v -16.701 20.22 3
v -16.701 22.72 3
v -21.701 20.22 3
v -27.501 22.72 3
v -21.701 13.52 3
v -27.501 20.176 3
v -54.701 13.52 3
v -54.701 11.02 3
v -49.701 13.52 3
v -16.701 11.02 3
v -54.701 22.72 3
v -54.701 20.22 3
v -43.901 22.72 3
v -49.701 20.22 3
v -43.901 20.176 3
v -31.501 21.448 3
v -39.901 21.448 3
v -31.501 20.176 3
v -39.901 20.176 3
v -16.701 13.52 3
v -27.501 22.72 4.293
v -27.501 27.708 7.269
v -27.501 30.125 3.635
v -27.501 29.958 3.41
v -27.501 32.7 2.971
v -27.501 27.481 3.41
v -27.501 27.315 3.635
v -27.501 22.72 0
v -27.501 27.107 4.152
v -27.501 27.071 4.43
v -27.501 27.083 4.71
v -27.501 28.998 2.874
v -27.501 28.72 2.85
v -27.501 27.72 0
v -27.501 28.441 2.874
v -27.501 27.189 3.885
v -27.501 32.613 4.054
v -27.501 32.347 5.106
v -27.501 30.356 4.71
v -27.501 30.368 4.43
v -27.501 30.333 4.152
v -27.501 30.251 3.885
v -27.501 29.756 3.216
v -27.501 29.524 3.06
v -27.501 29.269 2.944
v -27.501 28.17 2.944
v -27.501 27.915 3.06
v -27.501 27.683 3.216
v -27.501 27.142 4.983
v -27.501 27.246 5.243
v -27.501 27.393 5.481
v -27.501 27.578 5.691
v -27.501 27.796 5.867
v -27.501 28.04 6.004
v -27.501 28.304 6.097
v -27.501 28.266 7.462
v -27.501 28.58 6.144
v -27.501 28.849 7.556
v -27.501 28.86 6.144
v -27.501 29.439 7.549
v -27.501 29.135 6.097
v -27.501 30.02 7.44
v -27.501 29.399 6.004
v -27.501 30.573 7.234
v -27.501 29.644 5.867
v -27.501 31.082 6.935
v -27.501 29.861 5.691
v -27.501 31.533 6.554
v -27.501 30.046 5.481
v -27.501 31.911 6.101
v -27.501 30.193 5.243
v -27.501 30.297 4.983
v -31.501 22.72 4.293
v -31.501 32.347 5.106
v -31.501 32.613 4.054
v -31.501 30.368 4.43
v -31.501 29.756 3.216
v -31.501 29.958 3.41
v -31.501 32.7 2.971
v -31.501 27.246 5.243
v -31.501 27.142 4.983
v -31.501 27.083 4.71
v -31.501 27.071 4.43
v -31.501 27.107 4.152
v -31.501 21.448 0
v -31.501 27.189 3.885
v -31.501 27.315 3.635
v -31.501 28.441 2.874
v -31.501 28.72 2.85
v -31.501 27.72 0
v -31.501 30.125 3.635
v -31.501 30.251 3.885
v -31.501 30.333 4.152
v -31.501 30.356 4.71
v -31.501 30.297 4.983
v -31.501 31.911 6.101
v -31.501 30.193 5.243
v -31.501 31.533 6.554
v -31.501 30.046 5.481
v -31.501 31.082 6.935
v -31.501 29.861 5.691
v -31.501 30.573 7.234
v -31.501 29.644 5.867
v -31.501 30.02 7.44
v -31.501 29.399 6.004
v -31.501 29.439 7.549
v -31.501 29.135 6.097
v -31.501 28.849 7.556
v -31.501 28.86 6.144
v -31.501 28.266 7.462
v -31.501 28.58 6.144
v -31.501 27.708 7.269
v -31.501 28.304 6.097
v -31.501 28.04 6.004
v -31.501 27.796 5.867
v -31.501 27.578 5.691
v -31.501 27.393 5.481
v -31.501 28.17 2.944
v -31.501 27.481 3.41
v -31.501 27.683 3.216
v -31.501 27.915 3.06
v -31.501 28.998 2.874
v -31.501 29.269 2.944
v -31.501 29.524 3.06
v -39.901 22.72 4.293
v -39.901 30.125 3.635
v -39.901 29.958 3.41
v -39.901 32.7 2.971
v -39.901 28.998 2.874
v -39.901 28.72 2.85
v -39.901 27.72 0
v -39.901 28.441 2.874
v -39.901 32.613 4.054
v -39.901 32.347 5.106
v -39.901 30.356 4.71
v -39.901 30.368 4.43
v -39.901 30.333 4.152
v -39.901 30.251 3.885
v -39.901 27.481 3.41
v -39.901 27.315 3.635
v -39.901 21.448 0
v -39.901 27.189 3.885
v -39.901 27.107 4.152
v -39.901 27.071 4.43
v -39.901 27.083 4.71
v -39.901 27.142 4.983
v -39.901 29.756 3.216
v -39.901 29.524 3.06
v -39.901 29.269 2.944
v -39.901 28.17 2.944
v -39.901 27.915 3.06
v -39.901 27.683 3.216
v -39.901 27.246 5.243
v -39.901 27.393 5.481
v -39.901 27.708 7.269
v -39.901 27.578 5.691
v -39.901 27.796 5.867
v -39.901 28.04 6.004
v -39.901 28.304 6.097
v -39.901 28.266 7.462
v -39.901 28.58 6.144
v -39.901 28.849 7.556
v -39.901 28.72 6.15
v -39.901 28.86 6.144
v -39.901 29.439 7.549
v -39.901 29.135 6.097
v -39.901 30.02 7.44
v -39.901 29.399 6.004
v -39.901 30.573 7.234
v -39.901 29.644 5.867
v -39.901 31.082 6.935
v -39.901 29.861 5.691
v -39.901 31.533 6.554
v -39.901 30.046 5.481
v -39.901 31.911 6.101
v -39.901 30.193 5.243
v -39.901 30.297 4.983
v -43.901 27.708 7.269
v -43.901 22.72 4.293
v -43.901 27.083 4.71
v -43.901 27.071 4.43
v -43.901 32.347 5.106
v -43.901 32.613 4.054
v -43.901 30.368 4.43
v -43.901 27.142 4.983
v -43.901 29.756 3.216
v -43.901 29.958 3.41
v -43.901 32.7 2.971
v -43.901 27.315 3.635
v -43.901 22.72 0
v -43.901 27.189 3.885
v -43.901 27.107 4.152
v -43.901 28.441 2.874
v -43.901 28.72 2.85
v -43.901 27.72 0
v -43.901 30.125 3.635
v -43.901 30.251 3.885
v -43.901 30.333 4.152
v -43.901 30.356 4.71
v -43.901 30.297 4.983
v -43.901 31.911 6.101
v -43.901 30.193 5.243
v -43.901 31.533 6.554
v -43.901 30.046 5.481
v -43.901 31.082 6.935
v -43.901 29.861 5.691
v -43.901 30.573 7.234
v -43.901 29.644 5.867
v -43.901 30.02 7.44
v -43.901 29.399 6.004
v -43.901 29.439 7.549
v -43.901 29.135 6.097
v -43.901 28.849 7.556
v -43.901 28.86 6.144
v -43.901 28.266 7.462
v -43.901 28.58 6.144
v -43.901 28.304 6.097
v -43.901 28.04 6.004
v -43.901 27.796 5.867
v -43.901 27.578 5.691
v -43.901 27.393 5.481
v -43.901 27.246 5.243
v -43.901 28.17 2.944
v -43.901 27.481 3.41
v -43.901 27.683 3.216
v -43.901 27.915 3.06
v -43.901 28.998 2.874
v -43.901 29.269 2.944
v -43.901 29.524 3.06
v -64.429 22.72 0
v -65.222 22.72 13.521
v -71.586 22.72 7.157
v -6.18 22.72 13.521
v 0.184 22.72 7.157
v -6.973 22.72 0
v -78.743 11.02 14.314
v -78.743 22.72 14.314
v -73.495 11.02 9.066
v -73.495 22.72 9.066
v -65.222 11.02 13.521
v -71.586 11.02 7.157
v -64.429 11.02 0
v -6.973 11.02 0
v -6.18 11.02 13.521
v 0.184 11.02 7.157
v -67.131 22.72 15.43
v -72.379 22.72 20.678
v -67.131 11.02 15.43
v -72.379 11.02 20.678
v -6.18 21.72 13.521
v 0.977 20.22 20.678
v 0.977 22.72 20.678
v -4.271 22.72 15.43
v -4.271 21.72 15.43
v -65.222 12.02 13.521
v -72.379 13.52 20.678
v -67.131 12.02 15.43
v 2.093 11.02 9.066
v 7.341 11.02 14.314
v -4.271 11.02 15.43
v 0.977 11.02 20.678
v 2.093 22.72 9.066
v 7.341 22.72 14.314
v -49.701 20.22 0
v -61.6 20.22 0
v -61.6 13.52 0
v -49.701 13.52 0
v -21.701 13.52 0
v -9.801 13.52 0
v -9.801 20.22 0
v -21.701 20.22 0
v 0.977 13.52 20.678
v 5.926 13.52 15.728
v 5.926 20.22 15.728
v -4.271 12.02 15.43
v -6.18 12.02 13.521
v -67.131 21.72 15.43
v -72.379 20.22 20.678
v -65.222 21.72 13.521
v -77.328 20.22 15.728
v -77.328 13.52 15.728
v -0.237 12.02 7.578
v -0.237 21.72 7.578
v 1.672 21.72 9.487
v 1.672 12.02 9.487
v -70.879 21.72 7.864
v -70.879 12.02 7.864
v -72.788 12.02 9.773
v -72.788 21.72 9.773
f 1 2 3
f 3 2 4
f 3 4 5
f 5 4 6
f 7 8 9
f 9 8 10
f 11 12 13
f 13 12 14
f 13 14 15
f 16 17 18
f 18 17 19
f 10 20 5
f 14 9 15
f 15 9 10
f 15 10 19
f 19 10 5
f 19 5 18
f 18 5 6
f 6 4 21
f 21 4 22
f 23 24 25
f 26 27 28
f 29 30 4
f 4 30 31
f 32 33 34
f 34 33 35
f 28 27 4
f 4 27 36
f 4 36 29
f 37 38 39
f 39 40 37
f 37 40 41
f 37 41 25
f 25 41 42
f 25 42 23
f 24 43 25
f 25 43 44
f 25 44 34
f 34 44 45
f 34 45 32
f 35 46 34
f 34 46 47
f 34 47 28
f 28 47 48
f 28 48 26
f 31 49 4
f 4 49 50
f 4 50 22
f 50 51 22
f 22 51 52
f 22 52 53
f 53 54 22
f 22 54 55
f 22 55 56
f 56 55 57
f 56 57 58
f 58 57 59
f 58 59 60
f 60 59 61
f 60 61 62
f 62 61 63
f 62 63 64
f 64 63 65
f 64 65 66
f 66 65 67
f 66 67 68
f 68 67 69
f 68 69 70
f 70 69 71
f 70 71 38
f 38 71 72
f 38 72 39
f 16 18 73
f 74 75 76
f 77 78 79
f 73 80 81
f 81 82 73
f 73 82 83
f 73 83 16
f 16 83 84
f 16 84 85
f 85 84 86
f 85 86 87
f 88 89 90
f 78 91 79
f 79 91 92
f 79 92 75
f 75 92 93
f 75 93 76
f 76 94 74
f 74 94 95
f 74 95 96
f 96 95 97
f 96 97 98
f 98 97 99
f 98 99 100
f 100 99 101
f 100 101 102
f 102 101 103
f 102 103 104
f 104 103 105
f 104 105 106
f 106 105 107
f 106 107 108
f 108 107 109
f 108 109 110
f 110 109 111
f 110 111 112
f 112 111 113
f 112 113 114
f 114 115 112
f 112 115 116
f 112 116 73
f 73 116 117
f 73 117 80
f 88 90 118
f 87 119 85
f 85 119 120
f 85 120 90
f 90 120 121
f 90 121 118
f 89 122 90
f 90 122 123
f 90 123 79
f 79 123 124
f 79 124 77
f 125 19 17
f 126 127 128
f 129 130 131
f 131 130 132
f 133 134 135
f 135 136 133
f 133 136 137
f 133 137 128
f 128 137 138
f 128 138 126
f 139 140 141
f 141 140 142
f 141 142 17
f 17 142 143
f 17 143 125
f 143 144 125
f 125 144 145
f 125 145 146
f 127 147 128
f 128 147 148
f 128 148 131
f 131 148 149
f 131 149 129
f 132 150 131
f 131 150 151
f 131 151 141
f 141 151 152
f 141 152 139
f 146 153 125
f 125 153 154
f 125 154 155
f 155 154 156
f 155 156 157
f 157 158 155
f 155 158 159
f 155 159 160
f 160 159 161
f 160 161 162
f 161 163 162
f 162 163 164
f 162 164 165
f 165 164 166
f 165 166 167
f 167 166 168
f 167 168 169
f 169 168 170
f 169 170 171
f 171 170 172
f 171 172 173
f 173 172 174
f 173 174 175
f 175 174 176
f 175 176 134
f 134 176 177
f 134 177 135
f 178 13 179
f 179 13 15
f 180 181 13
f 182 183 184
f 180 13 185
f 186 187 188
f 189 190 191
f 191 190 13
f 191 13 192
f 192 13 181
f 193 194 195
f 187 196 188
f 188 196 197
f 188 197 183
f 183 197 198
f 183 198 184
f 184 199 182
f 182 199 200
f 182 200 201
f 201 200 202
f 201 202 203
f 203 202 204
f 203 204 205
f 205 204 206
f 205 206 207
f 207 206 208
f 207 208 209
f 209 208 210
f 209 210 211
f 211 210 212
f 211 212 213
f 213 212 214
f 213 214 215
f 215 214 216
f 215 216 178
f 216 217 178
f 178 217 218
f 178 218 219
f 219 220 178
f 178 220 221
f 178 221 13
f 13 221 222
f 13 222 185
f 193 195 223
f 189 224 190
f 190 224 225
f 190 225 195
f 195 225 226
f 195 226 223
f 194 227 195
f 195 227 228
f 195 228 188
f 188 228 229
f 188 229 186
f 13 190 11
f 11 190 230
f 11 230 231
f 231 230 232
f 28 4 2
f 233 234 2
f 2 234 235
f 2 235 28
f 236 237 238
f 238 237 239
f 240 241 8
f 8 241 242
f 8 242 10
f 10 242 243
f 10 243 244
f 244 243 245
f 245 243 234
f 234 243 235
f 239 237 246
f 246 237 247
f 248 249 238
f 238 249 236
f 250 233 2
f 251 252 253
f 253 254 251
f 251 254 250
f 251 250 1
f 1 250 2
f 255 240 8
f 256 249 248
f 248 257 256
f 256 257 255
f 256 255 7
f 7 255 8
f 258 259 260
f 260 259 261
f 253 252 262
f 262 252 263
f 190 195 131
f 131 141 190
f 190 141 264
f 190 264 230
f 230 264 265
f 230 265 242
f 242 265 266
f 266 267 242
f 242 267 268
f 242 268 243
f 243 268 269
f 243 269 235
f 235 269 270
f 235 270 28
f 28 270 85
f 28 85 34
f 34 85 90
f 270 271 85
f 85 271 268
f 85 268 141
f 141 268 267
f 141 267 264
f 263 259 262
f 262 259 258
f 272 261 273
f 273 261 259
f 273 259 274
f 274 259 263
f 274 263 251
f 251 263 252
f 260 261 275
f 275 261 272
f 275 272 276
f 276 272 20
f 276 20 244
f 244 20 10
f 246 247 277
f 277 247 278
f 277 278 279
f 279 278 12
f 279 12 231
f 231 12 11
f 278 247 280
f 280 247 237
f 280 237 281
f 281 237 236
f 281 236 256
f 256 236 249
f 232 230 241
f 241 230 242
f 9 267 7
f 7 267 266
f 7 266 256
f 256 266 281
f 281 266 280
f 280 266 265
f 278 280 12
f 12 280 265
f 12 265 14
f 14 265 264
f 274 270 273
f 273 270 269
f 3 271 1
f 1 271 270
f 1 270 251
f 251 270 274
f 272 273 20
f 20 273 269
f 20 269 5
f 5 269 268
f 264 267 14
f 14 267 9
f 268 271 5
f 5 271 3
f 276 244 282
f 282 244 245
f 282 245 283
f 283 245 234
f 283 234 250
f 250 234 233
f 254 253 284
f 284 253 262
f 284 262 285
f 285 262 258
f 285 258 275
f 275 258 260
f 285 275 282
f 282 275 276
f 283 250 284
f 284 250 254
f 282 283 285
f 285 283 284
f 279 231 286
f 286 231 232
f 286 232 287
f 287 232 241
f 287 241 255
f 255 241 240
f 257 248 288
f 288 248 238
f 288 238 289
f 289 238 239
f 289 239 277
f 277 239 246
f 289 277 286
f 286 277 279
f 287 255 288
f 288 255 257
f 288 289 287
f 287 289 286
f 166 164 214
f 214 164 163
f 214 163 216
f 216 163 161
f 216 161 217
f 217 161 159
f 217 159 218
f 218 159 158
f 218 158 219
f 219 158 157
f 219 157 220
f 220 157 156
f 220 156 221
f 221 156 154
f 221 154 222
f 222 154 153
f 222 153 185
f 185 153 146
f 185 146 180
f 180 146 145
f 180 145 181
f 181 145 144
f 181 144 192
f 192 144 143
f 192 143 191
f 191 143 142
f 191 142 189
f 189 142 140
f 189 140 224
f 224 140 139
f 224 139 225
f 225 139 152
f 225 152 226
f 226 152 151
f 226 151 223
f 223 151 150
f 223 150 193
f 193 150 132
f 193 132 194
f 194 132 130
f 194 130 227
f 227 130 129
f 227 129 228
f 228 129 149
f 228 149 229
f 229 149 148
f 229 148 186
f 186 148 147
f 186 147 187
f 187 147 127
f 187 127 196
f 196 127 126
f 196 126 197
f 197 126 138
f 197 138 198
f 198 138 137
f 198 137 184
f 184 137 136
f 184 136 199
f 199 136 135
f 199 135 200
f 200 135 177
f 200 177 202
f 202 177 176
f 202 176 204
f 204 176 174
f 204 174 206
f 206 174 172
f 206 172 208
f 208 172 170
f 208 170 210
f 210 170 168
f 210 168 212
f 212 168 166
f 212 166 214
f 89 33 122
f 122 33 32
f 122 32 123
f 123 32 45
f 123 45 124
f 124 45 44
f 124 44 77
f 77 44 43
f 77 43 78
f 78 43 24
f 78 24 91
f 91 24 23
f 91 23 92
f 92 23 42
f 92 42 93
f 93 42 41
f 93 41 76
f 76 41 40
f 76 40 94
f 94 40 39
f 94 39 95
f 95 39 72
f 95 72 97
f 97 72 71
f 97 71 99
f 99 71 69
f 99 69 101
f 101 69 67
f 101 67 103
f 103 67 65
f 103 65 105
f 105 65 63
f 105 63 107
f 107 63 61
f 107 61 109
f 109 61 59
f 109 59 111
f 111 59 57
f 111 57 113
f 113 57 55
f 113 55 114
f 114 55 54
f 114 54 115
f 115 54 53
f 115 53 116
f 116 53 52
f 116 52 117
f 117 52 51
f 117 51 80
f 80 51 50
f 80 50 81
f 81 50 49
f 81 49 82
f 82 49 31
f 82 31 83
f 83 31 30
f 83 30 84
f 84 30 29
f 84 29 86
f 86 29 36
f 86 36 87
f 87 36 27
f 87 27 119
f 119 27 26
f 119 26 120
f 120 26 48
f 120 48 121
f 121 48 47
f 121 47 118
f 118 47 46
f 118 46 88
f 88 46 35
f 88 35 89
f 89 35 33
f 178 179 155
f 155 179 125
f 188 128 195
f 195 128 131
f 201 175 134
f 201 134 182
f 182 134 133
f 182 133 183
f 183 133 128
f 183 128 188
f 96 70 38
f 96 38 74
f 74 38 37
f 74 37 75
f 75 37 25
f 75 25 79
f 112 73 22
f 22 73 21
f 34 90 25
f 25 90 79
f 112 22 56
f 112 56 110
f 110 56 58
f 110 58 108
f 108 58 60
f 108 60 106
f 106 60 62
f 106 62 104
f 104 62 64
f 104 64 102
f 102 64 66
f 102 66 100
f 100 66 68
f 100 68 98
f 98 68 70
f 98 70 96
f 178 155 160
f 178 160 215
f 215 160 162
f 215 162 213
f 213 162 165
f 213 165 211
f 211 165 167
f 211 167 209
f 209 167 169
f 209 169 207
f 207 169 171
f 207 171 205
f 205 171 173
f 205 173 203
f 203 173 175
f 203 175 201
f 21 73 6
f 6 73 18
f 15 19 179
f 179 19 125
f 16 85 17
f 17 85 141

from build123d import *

# Parameters (mm, degrees)
CROQUIS1_W              = 88
CROQUIS1_H              = 11.7
SALIENTE_EXTRUIR1_DEPTH = 25
CORTAR_EXTRUIR1_DEPTH   = 11.7
CROQUIS4_W              = 7
CROQUIS4_H              = 6.7
CORTAR_EXTRUIR2_DEPTH   = 30
CROQUIS5_W              = 7
CROQUIS5_H              = 6.7
CORTAR_EXTRUIR3_DEPTH   = 30
CROQUIS6_W              = 5
CROQUIS6_H              = 6.7
CORTAR_EXTRUIR4_DEPTH   = 3
CROQUIS7_W              = 2.7
CROQUIS7_H              = 1
CORTAR_EXTRUIR5_DEPTH   = 30
CORTAR_EXTRUIR6_DEPTH   = 30
CROQUIS10_W             = 2.7
CROQUIS10_H             = 1
CORTAR_EXTRUIR7_DEPTH   = 30
CORTAR_EXTRUIR8_DEPTH   = 30
CROQUIS12_W             = 4
CROQUIS12_H             = 8.5
SALIENTE_EXTRUIR2_DEPTH = 10
CORTAR_EXTRUIR9_START   = -16.4
CROQUIS13_R             = 1.65
CORTAR_EXTRUIR9_DEPTH   = 16.4
CORTAR_EXTRUIR10_DEPTH  = 20
CROQUIS15_W             = 4
CROQUIS15_H             = 5.789985178
SALIENTE_EXTRUIR3_DEPTH = 1.292749
CORTAR_EXTRUIR11_START  = -16.4
CORTAR_EXTRUIR11_DEPTH  = 16.4
CROQUIS17_W             = 8.4
CROQUIS17_H             = 1.271995795
CORTAR_EXTRUIR12_DEPTH  = 20


with BuildPart() as part:
    # Croquis1 → Saliente-Extruir1 (new body)
    with BuildSketch(Plane.XY):
        with Locations((-35.700934579, 16.869626168)):
            Rectangle(CROQUIS1_W, CROQUIS1_H)
    extrude(amount=SALIENTE_EXTRUIR1_DEPTH)

    # Croquis3 → Cortar-Extruir1 (cut)
    with BuildSketch(Plane.XZ.offset(-11.019626168)):
        Polygon((-16.700934579, 3), (0.97673495, 20.67766953), (7.340695981, 14.313708499), (-6.973012518, 0), (8.299065421, 0), (8.299065421, 25), (-79.700934579, 25), (-79.700934579, 0), (-64.428856641, 0), (-78.74256514, 14.313708499), (-72.378604109, 20.67766953), (-54.700934579, 3), align=None)
    extrude(amount=-CORTAR_EXTRUIR1_DEPTH, mode=Mode.SUBTRACT)

    # Croquis4 → Cortar-Extruir2 (cut)
    with BuildSketch(Plane(origin=(-46.528136819, 0, 46.528136819), x_dir=(0.707106781186546, 0, 0.707106781186549), z_dir=(-0.707106781186549, 0, 0.707106781186546))):
        with Locations((-40.058081435, 16.869626168)):
            Rectangle(CROQUIS4_W, CROQUIS4_H)
    extrude(amount=-CORTAR_EXTRUIR2_DEPTH, mode=Mode.SUBTRACT)

    # Croquis5 → Cortar-Extruir3 (cut)
    with BuildSketch(Plane(origin=(10.82720224, 0, 10.82720224), x_dir=(0.7071067811865477, 0, -0.7071067811865475), z_dir=(0.7071067811865475, 0, 0.7071067811865477))):
        with Locations((-10.430664437, 16.869626168)):
            Rectangle(CROQUIS5_W, CROQUIS5_H)
    extrude(amount=-CORTAR_EXTRUIR3_DEPTH, mode=Mode.SUBTRACT)

    # Croquis6 → Cortar-Extruir4 (cut)
    with BuildSketch(Plane.XY.offset(3)):
        with Locations((-52.200934579, 16.869626168)):
            Rectangle(CROQUIS6_W, CROQUIS6_H)
        with Locations((-19.200934579, 16.869626168)):
            Rectangle(CROQUIS6_W, CROQUIS6_H)
    extrude(amount=-CORTAR_EXTRUIR4_DEPTH, mode=Mode.SUBTRACT)

    # Croquis7 → Cortar-Extruir5 (cut)
    with BuildSketch(Plane(origin=(-3.486506259, 0, 3.486506259), x_dir=(-0.7071067811865472, 0, -0.7071067811865479), z_dir=(0.7071067811865479, 0, -0.7071067811865472))):
        with Locations((-6.540655907, 11.519626168)):
            Rectangle(CROQUIS7_W, CROQUIS7_H)
        with Locations((-6.540655907, 22.219626168)):
            Rectangle(CROQUIS7_W, CROQUIS7_H)
    extrude(amount=-CORTAR_EXTRUIR5_DEPTH, mode=Mode.SUBTRACT)

    # Croquis9 → Cortar-Extruir6 (cut)
    with BuildSketch(Plane.XZ.offset(-12.019626168)):
        Polygon((0.183841731, 7.156854249), (2.093030041, 9.066042559), (1.672230345, 9.486842254), (-0.236957964, 7.577653945), align=None)
    extrude(amount=-CORTAR_EXTRUIR6_DEPTH, mode=Mode.SUBTRACT)

    # Croquis10 → Cortar-Extruir7 (cut)
    with BuildSketch(Plane(origin=(-32.21442832, 0, -32.21442832), x_dir=(-0.707106781186549, 0, 0.707106781186546), z_dir=(-0.707106781186546, 0, -0.707106781186549))):
        with Locations((57.029401778, 22.219626168)):
            Rectangle(CROQUIS10_W, CROQUIS10_H)
        with Locations((57.029401778, 11.519626168)):
            Rectangle(CROQUIS10_W, CROQUIS10_H)
    extrude(amount=-CORTAR_EXTRUIR7_DEPTH, mode=Mode.SUBTRACT)

    # Croquis11 → Cortar-Extruir8 (cut)
    with BuildSketch(Plane.XZ.offset(-12.019626168)):
        Polygon((-71.58571089, 7.156854249), (-70.878604109, 7.863961031), (-72.787792418, 9.77314934), (-73.494899199, 9.066042559), align=None)
    extrude(amount=-CORTAR_EXTRUIR8_DEPTH, mode=Mode.SUBTRACT)

    # Croquis12 → Saliente-Extruir2 (add)
    with BuildSketch(Plane(origin=(0, 22.719626168, 0), x_dir=(1, 0, 0), z_dir=(0, 1, 0))):
        with Locations((-29.500934579, -4.25)):
            Rectangle(CROQUIS12_W, CROQUIS12_H)
        with Locations((-41.900934579, -4.25)):
            Rectangle(CROQUIS12_W, CROQUIS12_H)
    extrude(amount=SALIENTE_EXTRUIR2_DEPTH)

    # Croquis13 → Cortar-Extruir9 (cut)
    with BuildSketch(Plane(origin=(-27.500934579, 0, 0), x_dir=(0, 0, -1), z_dir=(1, 0, 0)).offset(CORTAR_EXTRUIR9_START)):
        with Locations((-4.5, 28.719626168)):
            Circle(CROQUIS13_R)
        with BuildLine():
            Line((0, 27.719626168), (-2.971466884, 32.699888422))
            ThreePointArc((-2.971466884, 32.699888422), (-6.100596854, 31.91119471), (-8.46936188, 29.719746698))
            Line((-8.46936188, 29.719746698), (-4.292749227, 22.719626168))
            Line((-4.292749227, 22.719626168), (-8.5, 22.719626168))
            Line((-8.5, 22.719626168), (-8.5, 32.719626168))
            Line((-8.5, 32.719626168), (0, 32.719626168))
            Line((0, 32.719626168), (0, 27.719626168))
        make_face()
    extrude(amount=CORTAR_EXTRUIR9_DEPTH, mode=Mode.SUBTRACT)

    # Croquis14 → Cortar-Extruir10 (cut)
    with BuildSketch(Plane(origin=(-27.500934579, 0, 0), x_dir=(0, 0, -1), z_dir=(1, 0, 0))):
        with BuildLine():
            Line((-8.46936188, 29.719746698), (-7.269222305, 27.708278944))
            ThreePointArc((-7.269222305, 27.708278944), (-7.44017574, 30.019739431), (-6.100596854, 31.91119471))
            Line((-6.100596854, 31.91119471), (-7.548349231, 31.815598295))
            Line((-7.548349231, 31.815598295), (-8.46936188, 29.719746698))
        make_face()
    extrude(amount=-CORTAR_EXTRUIR10_DEPTH, mode=Mode.SUBTRACT)

    # Croquis15 → Saliente-Extruir3 (add)
    with BuildSketch(Plane.XY.offset(3)):
        with Locations((-41.900934579, 19.824633579)):
            Rectangle(CROQUIS15_W, CROQUIS15_H)
        with Locations((-29.500934579, 19.824633579)):
            Rectangle(CROQUIS15_W, CROQUIS15_H)
    extrude(amount=SALIENTE_EXTRUIR3_DEPTH)

    # Croquis16 → Cortar-Extruir11 (cut)
    with BuildSketch(Plane.ZY.offset(43.900934579).offset(CORTAR_EXTRUIR11_START)):
        Polygon((4.292749227, 22.719626168), (3, 20.175634578), (3, 16.92964099), (4.292749227, 16.92964099), align=None)
    extrude(amount=CORTAR_EXTRUIR11_DEPTH, mode=Mode.SUBTRACT)

    # Croquis17 → Cortar-Extruir12 (cut)
    with BuildSketch(Plane.XY.offset(3)):
        with Locations((-35.700934579, 22.083628271)):
            Rectangle(CROQUIS17_W, CROQUIS17_H)
    extrude(amount=-CORTAR_EXTRUIR12_DEPTH, mode=Mode.SUBTRACT)


solid = part.part
